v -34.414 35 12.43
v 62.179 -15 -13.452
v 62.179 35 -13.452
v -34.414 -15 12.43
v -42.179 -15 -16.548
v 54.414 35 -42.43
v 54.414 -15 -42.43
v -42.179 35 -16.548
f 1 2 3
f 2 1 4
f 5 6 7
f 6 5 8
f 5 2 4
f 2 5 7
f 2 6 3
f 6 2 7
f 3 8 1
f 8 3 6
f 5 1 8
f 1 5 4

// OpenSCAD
// Define dimensions for the rectangular block
length = 100;  // Increased length to match the original model's proportions
width = 50;    // Adjusted width to match the original model's proportions
height = 30;   // Adjusted height to match the original model's proportions

// Adjust the position and orientation of the block
translate([10, 10, -15])  // Repositioned closer to the center and lowered to match the original vertical position
rotate([0, 15, 0])        // Rotated to match the original block's orientation
cube([length, width, height], center = true);  // Ensured sharp edges by not applying any rounding
